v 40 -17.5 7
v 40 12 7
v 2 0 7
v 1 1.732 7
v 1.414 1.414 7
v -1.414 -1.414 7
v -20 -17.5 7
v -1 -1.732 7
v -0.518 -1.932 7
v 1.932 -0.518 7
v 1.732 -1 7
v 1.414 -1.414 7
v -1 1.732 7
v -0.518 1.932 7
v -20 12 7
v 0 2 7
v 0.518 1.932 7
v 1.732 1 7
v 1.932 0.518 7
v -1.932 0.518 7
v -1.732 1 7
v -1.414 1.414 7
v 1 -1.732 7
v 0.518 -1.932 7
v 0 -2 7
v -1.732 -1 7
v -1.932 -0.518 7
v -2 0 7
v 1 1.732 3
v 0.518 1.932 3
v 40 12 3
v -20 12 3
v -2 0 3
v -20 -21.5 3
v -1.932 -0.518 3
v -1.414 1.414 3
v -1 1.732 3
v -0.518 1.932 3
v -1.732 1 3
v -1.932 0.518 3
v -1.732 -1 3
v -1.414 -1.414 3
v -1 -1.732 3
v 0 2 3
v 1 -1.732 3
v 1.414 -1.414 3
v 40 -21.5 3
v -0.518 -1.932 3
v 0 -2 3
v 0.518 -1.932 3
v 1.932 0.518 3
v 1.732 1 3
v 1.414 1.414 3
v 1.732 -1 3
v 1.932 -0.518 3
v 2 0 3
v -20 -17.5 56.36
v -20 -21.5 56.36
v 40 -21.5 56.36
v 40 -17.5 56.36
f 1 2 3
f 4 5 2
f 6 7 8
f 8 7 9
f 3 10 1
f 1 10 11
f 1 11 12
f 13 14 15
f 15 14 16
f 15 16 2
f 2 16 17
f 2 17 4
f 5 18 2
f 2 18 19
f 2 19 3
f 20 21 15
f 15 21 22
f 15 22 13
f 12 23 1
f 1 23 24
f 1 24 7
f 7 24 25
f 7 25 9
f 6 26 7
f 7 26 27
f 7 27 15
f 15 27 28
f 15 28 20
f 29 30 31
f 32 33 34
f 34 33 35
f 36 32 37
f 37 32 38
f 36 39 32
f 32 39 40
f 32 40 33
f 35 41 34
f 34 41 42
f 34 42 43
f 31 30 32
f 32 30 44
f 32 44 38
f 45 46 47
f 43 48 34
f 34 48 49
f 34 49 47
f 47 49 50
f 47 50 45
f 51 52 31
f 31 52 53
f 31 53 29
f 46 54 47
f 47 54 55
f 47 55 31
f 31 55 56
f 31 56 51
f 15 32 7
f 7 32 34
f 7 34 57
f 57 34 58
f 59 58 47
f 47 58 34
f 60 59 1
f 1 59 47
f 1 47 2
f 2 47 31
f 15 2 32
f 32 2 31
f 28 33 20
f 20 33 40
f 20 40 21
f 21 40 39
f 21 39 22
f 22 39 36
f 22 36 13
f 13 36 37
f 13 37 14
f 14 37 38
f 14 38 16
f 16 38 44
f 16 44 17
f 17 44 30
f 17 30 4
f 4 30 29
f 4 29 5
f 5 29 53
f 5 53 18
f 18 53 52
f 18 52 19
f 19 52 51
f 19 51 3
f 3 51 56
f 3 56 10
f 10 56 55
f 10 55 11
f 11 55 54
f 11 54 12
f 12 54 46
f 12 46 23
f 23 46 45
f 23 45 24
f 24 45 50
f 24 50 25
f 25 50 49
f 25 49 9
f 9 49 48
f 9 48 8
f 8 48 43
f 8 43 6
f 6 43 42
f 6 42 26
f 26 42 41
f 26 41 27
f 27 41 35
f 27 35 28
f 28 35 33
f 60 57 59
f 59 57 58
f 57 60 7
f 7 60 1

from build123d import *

# Parameters (mm, degrees)
SK_HORN_PLATE_W   = 60
SK_HORN_PLATE_H   = 33.5
SK_HORN_PLATE_R   = 2
HORN_PLATE_DEPTH  = 4
SK_SERVO_PLATE_W  = 60
SK_SERVO_PLATE_H  = 53.36
SERVO_PLATE_DEPTH = 4


with BuildPart() as part:
    # SK_Horn_Plate → Horn_Plate (new body)
    with BuildSketch(Plane.XY.offset(3)):
        with Locations((10, -4.75)):
            Rectangle(SK_HORN_PLATE_W, SK_HORN_PLATE_H)
        Circle(SK_HORN_PLATE_R, mode=Mode.SUBTRACT)
    extrude(amount=HORN_PLATE_DEPTH)

    # SK_Servo_Plate → Servo_Plate (add)
    with BuildSketch(Plane(origin=(0, -21.5, 0), x_dir=(1, 0, 0), z_dir=(0, 1, 0))):
        with Locations((10, -29.68)):
            Rectangle(SK_SERVO_PLATE_W, SK_SERVO_PLATE_H)
    extrude(amount=SERVO_PLATE_DEPTH)


solid = part.part
